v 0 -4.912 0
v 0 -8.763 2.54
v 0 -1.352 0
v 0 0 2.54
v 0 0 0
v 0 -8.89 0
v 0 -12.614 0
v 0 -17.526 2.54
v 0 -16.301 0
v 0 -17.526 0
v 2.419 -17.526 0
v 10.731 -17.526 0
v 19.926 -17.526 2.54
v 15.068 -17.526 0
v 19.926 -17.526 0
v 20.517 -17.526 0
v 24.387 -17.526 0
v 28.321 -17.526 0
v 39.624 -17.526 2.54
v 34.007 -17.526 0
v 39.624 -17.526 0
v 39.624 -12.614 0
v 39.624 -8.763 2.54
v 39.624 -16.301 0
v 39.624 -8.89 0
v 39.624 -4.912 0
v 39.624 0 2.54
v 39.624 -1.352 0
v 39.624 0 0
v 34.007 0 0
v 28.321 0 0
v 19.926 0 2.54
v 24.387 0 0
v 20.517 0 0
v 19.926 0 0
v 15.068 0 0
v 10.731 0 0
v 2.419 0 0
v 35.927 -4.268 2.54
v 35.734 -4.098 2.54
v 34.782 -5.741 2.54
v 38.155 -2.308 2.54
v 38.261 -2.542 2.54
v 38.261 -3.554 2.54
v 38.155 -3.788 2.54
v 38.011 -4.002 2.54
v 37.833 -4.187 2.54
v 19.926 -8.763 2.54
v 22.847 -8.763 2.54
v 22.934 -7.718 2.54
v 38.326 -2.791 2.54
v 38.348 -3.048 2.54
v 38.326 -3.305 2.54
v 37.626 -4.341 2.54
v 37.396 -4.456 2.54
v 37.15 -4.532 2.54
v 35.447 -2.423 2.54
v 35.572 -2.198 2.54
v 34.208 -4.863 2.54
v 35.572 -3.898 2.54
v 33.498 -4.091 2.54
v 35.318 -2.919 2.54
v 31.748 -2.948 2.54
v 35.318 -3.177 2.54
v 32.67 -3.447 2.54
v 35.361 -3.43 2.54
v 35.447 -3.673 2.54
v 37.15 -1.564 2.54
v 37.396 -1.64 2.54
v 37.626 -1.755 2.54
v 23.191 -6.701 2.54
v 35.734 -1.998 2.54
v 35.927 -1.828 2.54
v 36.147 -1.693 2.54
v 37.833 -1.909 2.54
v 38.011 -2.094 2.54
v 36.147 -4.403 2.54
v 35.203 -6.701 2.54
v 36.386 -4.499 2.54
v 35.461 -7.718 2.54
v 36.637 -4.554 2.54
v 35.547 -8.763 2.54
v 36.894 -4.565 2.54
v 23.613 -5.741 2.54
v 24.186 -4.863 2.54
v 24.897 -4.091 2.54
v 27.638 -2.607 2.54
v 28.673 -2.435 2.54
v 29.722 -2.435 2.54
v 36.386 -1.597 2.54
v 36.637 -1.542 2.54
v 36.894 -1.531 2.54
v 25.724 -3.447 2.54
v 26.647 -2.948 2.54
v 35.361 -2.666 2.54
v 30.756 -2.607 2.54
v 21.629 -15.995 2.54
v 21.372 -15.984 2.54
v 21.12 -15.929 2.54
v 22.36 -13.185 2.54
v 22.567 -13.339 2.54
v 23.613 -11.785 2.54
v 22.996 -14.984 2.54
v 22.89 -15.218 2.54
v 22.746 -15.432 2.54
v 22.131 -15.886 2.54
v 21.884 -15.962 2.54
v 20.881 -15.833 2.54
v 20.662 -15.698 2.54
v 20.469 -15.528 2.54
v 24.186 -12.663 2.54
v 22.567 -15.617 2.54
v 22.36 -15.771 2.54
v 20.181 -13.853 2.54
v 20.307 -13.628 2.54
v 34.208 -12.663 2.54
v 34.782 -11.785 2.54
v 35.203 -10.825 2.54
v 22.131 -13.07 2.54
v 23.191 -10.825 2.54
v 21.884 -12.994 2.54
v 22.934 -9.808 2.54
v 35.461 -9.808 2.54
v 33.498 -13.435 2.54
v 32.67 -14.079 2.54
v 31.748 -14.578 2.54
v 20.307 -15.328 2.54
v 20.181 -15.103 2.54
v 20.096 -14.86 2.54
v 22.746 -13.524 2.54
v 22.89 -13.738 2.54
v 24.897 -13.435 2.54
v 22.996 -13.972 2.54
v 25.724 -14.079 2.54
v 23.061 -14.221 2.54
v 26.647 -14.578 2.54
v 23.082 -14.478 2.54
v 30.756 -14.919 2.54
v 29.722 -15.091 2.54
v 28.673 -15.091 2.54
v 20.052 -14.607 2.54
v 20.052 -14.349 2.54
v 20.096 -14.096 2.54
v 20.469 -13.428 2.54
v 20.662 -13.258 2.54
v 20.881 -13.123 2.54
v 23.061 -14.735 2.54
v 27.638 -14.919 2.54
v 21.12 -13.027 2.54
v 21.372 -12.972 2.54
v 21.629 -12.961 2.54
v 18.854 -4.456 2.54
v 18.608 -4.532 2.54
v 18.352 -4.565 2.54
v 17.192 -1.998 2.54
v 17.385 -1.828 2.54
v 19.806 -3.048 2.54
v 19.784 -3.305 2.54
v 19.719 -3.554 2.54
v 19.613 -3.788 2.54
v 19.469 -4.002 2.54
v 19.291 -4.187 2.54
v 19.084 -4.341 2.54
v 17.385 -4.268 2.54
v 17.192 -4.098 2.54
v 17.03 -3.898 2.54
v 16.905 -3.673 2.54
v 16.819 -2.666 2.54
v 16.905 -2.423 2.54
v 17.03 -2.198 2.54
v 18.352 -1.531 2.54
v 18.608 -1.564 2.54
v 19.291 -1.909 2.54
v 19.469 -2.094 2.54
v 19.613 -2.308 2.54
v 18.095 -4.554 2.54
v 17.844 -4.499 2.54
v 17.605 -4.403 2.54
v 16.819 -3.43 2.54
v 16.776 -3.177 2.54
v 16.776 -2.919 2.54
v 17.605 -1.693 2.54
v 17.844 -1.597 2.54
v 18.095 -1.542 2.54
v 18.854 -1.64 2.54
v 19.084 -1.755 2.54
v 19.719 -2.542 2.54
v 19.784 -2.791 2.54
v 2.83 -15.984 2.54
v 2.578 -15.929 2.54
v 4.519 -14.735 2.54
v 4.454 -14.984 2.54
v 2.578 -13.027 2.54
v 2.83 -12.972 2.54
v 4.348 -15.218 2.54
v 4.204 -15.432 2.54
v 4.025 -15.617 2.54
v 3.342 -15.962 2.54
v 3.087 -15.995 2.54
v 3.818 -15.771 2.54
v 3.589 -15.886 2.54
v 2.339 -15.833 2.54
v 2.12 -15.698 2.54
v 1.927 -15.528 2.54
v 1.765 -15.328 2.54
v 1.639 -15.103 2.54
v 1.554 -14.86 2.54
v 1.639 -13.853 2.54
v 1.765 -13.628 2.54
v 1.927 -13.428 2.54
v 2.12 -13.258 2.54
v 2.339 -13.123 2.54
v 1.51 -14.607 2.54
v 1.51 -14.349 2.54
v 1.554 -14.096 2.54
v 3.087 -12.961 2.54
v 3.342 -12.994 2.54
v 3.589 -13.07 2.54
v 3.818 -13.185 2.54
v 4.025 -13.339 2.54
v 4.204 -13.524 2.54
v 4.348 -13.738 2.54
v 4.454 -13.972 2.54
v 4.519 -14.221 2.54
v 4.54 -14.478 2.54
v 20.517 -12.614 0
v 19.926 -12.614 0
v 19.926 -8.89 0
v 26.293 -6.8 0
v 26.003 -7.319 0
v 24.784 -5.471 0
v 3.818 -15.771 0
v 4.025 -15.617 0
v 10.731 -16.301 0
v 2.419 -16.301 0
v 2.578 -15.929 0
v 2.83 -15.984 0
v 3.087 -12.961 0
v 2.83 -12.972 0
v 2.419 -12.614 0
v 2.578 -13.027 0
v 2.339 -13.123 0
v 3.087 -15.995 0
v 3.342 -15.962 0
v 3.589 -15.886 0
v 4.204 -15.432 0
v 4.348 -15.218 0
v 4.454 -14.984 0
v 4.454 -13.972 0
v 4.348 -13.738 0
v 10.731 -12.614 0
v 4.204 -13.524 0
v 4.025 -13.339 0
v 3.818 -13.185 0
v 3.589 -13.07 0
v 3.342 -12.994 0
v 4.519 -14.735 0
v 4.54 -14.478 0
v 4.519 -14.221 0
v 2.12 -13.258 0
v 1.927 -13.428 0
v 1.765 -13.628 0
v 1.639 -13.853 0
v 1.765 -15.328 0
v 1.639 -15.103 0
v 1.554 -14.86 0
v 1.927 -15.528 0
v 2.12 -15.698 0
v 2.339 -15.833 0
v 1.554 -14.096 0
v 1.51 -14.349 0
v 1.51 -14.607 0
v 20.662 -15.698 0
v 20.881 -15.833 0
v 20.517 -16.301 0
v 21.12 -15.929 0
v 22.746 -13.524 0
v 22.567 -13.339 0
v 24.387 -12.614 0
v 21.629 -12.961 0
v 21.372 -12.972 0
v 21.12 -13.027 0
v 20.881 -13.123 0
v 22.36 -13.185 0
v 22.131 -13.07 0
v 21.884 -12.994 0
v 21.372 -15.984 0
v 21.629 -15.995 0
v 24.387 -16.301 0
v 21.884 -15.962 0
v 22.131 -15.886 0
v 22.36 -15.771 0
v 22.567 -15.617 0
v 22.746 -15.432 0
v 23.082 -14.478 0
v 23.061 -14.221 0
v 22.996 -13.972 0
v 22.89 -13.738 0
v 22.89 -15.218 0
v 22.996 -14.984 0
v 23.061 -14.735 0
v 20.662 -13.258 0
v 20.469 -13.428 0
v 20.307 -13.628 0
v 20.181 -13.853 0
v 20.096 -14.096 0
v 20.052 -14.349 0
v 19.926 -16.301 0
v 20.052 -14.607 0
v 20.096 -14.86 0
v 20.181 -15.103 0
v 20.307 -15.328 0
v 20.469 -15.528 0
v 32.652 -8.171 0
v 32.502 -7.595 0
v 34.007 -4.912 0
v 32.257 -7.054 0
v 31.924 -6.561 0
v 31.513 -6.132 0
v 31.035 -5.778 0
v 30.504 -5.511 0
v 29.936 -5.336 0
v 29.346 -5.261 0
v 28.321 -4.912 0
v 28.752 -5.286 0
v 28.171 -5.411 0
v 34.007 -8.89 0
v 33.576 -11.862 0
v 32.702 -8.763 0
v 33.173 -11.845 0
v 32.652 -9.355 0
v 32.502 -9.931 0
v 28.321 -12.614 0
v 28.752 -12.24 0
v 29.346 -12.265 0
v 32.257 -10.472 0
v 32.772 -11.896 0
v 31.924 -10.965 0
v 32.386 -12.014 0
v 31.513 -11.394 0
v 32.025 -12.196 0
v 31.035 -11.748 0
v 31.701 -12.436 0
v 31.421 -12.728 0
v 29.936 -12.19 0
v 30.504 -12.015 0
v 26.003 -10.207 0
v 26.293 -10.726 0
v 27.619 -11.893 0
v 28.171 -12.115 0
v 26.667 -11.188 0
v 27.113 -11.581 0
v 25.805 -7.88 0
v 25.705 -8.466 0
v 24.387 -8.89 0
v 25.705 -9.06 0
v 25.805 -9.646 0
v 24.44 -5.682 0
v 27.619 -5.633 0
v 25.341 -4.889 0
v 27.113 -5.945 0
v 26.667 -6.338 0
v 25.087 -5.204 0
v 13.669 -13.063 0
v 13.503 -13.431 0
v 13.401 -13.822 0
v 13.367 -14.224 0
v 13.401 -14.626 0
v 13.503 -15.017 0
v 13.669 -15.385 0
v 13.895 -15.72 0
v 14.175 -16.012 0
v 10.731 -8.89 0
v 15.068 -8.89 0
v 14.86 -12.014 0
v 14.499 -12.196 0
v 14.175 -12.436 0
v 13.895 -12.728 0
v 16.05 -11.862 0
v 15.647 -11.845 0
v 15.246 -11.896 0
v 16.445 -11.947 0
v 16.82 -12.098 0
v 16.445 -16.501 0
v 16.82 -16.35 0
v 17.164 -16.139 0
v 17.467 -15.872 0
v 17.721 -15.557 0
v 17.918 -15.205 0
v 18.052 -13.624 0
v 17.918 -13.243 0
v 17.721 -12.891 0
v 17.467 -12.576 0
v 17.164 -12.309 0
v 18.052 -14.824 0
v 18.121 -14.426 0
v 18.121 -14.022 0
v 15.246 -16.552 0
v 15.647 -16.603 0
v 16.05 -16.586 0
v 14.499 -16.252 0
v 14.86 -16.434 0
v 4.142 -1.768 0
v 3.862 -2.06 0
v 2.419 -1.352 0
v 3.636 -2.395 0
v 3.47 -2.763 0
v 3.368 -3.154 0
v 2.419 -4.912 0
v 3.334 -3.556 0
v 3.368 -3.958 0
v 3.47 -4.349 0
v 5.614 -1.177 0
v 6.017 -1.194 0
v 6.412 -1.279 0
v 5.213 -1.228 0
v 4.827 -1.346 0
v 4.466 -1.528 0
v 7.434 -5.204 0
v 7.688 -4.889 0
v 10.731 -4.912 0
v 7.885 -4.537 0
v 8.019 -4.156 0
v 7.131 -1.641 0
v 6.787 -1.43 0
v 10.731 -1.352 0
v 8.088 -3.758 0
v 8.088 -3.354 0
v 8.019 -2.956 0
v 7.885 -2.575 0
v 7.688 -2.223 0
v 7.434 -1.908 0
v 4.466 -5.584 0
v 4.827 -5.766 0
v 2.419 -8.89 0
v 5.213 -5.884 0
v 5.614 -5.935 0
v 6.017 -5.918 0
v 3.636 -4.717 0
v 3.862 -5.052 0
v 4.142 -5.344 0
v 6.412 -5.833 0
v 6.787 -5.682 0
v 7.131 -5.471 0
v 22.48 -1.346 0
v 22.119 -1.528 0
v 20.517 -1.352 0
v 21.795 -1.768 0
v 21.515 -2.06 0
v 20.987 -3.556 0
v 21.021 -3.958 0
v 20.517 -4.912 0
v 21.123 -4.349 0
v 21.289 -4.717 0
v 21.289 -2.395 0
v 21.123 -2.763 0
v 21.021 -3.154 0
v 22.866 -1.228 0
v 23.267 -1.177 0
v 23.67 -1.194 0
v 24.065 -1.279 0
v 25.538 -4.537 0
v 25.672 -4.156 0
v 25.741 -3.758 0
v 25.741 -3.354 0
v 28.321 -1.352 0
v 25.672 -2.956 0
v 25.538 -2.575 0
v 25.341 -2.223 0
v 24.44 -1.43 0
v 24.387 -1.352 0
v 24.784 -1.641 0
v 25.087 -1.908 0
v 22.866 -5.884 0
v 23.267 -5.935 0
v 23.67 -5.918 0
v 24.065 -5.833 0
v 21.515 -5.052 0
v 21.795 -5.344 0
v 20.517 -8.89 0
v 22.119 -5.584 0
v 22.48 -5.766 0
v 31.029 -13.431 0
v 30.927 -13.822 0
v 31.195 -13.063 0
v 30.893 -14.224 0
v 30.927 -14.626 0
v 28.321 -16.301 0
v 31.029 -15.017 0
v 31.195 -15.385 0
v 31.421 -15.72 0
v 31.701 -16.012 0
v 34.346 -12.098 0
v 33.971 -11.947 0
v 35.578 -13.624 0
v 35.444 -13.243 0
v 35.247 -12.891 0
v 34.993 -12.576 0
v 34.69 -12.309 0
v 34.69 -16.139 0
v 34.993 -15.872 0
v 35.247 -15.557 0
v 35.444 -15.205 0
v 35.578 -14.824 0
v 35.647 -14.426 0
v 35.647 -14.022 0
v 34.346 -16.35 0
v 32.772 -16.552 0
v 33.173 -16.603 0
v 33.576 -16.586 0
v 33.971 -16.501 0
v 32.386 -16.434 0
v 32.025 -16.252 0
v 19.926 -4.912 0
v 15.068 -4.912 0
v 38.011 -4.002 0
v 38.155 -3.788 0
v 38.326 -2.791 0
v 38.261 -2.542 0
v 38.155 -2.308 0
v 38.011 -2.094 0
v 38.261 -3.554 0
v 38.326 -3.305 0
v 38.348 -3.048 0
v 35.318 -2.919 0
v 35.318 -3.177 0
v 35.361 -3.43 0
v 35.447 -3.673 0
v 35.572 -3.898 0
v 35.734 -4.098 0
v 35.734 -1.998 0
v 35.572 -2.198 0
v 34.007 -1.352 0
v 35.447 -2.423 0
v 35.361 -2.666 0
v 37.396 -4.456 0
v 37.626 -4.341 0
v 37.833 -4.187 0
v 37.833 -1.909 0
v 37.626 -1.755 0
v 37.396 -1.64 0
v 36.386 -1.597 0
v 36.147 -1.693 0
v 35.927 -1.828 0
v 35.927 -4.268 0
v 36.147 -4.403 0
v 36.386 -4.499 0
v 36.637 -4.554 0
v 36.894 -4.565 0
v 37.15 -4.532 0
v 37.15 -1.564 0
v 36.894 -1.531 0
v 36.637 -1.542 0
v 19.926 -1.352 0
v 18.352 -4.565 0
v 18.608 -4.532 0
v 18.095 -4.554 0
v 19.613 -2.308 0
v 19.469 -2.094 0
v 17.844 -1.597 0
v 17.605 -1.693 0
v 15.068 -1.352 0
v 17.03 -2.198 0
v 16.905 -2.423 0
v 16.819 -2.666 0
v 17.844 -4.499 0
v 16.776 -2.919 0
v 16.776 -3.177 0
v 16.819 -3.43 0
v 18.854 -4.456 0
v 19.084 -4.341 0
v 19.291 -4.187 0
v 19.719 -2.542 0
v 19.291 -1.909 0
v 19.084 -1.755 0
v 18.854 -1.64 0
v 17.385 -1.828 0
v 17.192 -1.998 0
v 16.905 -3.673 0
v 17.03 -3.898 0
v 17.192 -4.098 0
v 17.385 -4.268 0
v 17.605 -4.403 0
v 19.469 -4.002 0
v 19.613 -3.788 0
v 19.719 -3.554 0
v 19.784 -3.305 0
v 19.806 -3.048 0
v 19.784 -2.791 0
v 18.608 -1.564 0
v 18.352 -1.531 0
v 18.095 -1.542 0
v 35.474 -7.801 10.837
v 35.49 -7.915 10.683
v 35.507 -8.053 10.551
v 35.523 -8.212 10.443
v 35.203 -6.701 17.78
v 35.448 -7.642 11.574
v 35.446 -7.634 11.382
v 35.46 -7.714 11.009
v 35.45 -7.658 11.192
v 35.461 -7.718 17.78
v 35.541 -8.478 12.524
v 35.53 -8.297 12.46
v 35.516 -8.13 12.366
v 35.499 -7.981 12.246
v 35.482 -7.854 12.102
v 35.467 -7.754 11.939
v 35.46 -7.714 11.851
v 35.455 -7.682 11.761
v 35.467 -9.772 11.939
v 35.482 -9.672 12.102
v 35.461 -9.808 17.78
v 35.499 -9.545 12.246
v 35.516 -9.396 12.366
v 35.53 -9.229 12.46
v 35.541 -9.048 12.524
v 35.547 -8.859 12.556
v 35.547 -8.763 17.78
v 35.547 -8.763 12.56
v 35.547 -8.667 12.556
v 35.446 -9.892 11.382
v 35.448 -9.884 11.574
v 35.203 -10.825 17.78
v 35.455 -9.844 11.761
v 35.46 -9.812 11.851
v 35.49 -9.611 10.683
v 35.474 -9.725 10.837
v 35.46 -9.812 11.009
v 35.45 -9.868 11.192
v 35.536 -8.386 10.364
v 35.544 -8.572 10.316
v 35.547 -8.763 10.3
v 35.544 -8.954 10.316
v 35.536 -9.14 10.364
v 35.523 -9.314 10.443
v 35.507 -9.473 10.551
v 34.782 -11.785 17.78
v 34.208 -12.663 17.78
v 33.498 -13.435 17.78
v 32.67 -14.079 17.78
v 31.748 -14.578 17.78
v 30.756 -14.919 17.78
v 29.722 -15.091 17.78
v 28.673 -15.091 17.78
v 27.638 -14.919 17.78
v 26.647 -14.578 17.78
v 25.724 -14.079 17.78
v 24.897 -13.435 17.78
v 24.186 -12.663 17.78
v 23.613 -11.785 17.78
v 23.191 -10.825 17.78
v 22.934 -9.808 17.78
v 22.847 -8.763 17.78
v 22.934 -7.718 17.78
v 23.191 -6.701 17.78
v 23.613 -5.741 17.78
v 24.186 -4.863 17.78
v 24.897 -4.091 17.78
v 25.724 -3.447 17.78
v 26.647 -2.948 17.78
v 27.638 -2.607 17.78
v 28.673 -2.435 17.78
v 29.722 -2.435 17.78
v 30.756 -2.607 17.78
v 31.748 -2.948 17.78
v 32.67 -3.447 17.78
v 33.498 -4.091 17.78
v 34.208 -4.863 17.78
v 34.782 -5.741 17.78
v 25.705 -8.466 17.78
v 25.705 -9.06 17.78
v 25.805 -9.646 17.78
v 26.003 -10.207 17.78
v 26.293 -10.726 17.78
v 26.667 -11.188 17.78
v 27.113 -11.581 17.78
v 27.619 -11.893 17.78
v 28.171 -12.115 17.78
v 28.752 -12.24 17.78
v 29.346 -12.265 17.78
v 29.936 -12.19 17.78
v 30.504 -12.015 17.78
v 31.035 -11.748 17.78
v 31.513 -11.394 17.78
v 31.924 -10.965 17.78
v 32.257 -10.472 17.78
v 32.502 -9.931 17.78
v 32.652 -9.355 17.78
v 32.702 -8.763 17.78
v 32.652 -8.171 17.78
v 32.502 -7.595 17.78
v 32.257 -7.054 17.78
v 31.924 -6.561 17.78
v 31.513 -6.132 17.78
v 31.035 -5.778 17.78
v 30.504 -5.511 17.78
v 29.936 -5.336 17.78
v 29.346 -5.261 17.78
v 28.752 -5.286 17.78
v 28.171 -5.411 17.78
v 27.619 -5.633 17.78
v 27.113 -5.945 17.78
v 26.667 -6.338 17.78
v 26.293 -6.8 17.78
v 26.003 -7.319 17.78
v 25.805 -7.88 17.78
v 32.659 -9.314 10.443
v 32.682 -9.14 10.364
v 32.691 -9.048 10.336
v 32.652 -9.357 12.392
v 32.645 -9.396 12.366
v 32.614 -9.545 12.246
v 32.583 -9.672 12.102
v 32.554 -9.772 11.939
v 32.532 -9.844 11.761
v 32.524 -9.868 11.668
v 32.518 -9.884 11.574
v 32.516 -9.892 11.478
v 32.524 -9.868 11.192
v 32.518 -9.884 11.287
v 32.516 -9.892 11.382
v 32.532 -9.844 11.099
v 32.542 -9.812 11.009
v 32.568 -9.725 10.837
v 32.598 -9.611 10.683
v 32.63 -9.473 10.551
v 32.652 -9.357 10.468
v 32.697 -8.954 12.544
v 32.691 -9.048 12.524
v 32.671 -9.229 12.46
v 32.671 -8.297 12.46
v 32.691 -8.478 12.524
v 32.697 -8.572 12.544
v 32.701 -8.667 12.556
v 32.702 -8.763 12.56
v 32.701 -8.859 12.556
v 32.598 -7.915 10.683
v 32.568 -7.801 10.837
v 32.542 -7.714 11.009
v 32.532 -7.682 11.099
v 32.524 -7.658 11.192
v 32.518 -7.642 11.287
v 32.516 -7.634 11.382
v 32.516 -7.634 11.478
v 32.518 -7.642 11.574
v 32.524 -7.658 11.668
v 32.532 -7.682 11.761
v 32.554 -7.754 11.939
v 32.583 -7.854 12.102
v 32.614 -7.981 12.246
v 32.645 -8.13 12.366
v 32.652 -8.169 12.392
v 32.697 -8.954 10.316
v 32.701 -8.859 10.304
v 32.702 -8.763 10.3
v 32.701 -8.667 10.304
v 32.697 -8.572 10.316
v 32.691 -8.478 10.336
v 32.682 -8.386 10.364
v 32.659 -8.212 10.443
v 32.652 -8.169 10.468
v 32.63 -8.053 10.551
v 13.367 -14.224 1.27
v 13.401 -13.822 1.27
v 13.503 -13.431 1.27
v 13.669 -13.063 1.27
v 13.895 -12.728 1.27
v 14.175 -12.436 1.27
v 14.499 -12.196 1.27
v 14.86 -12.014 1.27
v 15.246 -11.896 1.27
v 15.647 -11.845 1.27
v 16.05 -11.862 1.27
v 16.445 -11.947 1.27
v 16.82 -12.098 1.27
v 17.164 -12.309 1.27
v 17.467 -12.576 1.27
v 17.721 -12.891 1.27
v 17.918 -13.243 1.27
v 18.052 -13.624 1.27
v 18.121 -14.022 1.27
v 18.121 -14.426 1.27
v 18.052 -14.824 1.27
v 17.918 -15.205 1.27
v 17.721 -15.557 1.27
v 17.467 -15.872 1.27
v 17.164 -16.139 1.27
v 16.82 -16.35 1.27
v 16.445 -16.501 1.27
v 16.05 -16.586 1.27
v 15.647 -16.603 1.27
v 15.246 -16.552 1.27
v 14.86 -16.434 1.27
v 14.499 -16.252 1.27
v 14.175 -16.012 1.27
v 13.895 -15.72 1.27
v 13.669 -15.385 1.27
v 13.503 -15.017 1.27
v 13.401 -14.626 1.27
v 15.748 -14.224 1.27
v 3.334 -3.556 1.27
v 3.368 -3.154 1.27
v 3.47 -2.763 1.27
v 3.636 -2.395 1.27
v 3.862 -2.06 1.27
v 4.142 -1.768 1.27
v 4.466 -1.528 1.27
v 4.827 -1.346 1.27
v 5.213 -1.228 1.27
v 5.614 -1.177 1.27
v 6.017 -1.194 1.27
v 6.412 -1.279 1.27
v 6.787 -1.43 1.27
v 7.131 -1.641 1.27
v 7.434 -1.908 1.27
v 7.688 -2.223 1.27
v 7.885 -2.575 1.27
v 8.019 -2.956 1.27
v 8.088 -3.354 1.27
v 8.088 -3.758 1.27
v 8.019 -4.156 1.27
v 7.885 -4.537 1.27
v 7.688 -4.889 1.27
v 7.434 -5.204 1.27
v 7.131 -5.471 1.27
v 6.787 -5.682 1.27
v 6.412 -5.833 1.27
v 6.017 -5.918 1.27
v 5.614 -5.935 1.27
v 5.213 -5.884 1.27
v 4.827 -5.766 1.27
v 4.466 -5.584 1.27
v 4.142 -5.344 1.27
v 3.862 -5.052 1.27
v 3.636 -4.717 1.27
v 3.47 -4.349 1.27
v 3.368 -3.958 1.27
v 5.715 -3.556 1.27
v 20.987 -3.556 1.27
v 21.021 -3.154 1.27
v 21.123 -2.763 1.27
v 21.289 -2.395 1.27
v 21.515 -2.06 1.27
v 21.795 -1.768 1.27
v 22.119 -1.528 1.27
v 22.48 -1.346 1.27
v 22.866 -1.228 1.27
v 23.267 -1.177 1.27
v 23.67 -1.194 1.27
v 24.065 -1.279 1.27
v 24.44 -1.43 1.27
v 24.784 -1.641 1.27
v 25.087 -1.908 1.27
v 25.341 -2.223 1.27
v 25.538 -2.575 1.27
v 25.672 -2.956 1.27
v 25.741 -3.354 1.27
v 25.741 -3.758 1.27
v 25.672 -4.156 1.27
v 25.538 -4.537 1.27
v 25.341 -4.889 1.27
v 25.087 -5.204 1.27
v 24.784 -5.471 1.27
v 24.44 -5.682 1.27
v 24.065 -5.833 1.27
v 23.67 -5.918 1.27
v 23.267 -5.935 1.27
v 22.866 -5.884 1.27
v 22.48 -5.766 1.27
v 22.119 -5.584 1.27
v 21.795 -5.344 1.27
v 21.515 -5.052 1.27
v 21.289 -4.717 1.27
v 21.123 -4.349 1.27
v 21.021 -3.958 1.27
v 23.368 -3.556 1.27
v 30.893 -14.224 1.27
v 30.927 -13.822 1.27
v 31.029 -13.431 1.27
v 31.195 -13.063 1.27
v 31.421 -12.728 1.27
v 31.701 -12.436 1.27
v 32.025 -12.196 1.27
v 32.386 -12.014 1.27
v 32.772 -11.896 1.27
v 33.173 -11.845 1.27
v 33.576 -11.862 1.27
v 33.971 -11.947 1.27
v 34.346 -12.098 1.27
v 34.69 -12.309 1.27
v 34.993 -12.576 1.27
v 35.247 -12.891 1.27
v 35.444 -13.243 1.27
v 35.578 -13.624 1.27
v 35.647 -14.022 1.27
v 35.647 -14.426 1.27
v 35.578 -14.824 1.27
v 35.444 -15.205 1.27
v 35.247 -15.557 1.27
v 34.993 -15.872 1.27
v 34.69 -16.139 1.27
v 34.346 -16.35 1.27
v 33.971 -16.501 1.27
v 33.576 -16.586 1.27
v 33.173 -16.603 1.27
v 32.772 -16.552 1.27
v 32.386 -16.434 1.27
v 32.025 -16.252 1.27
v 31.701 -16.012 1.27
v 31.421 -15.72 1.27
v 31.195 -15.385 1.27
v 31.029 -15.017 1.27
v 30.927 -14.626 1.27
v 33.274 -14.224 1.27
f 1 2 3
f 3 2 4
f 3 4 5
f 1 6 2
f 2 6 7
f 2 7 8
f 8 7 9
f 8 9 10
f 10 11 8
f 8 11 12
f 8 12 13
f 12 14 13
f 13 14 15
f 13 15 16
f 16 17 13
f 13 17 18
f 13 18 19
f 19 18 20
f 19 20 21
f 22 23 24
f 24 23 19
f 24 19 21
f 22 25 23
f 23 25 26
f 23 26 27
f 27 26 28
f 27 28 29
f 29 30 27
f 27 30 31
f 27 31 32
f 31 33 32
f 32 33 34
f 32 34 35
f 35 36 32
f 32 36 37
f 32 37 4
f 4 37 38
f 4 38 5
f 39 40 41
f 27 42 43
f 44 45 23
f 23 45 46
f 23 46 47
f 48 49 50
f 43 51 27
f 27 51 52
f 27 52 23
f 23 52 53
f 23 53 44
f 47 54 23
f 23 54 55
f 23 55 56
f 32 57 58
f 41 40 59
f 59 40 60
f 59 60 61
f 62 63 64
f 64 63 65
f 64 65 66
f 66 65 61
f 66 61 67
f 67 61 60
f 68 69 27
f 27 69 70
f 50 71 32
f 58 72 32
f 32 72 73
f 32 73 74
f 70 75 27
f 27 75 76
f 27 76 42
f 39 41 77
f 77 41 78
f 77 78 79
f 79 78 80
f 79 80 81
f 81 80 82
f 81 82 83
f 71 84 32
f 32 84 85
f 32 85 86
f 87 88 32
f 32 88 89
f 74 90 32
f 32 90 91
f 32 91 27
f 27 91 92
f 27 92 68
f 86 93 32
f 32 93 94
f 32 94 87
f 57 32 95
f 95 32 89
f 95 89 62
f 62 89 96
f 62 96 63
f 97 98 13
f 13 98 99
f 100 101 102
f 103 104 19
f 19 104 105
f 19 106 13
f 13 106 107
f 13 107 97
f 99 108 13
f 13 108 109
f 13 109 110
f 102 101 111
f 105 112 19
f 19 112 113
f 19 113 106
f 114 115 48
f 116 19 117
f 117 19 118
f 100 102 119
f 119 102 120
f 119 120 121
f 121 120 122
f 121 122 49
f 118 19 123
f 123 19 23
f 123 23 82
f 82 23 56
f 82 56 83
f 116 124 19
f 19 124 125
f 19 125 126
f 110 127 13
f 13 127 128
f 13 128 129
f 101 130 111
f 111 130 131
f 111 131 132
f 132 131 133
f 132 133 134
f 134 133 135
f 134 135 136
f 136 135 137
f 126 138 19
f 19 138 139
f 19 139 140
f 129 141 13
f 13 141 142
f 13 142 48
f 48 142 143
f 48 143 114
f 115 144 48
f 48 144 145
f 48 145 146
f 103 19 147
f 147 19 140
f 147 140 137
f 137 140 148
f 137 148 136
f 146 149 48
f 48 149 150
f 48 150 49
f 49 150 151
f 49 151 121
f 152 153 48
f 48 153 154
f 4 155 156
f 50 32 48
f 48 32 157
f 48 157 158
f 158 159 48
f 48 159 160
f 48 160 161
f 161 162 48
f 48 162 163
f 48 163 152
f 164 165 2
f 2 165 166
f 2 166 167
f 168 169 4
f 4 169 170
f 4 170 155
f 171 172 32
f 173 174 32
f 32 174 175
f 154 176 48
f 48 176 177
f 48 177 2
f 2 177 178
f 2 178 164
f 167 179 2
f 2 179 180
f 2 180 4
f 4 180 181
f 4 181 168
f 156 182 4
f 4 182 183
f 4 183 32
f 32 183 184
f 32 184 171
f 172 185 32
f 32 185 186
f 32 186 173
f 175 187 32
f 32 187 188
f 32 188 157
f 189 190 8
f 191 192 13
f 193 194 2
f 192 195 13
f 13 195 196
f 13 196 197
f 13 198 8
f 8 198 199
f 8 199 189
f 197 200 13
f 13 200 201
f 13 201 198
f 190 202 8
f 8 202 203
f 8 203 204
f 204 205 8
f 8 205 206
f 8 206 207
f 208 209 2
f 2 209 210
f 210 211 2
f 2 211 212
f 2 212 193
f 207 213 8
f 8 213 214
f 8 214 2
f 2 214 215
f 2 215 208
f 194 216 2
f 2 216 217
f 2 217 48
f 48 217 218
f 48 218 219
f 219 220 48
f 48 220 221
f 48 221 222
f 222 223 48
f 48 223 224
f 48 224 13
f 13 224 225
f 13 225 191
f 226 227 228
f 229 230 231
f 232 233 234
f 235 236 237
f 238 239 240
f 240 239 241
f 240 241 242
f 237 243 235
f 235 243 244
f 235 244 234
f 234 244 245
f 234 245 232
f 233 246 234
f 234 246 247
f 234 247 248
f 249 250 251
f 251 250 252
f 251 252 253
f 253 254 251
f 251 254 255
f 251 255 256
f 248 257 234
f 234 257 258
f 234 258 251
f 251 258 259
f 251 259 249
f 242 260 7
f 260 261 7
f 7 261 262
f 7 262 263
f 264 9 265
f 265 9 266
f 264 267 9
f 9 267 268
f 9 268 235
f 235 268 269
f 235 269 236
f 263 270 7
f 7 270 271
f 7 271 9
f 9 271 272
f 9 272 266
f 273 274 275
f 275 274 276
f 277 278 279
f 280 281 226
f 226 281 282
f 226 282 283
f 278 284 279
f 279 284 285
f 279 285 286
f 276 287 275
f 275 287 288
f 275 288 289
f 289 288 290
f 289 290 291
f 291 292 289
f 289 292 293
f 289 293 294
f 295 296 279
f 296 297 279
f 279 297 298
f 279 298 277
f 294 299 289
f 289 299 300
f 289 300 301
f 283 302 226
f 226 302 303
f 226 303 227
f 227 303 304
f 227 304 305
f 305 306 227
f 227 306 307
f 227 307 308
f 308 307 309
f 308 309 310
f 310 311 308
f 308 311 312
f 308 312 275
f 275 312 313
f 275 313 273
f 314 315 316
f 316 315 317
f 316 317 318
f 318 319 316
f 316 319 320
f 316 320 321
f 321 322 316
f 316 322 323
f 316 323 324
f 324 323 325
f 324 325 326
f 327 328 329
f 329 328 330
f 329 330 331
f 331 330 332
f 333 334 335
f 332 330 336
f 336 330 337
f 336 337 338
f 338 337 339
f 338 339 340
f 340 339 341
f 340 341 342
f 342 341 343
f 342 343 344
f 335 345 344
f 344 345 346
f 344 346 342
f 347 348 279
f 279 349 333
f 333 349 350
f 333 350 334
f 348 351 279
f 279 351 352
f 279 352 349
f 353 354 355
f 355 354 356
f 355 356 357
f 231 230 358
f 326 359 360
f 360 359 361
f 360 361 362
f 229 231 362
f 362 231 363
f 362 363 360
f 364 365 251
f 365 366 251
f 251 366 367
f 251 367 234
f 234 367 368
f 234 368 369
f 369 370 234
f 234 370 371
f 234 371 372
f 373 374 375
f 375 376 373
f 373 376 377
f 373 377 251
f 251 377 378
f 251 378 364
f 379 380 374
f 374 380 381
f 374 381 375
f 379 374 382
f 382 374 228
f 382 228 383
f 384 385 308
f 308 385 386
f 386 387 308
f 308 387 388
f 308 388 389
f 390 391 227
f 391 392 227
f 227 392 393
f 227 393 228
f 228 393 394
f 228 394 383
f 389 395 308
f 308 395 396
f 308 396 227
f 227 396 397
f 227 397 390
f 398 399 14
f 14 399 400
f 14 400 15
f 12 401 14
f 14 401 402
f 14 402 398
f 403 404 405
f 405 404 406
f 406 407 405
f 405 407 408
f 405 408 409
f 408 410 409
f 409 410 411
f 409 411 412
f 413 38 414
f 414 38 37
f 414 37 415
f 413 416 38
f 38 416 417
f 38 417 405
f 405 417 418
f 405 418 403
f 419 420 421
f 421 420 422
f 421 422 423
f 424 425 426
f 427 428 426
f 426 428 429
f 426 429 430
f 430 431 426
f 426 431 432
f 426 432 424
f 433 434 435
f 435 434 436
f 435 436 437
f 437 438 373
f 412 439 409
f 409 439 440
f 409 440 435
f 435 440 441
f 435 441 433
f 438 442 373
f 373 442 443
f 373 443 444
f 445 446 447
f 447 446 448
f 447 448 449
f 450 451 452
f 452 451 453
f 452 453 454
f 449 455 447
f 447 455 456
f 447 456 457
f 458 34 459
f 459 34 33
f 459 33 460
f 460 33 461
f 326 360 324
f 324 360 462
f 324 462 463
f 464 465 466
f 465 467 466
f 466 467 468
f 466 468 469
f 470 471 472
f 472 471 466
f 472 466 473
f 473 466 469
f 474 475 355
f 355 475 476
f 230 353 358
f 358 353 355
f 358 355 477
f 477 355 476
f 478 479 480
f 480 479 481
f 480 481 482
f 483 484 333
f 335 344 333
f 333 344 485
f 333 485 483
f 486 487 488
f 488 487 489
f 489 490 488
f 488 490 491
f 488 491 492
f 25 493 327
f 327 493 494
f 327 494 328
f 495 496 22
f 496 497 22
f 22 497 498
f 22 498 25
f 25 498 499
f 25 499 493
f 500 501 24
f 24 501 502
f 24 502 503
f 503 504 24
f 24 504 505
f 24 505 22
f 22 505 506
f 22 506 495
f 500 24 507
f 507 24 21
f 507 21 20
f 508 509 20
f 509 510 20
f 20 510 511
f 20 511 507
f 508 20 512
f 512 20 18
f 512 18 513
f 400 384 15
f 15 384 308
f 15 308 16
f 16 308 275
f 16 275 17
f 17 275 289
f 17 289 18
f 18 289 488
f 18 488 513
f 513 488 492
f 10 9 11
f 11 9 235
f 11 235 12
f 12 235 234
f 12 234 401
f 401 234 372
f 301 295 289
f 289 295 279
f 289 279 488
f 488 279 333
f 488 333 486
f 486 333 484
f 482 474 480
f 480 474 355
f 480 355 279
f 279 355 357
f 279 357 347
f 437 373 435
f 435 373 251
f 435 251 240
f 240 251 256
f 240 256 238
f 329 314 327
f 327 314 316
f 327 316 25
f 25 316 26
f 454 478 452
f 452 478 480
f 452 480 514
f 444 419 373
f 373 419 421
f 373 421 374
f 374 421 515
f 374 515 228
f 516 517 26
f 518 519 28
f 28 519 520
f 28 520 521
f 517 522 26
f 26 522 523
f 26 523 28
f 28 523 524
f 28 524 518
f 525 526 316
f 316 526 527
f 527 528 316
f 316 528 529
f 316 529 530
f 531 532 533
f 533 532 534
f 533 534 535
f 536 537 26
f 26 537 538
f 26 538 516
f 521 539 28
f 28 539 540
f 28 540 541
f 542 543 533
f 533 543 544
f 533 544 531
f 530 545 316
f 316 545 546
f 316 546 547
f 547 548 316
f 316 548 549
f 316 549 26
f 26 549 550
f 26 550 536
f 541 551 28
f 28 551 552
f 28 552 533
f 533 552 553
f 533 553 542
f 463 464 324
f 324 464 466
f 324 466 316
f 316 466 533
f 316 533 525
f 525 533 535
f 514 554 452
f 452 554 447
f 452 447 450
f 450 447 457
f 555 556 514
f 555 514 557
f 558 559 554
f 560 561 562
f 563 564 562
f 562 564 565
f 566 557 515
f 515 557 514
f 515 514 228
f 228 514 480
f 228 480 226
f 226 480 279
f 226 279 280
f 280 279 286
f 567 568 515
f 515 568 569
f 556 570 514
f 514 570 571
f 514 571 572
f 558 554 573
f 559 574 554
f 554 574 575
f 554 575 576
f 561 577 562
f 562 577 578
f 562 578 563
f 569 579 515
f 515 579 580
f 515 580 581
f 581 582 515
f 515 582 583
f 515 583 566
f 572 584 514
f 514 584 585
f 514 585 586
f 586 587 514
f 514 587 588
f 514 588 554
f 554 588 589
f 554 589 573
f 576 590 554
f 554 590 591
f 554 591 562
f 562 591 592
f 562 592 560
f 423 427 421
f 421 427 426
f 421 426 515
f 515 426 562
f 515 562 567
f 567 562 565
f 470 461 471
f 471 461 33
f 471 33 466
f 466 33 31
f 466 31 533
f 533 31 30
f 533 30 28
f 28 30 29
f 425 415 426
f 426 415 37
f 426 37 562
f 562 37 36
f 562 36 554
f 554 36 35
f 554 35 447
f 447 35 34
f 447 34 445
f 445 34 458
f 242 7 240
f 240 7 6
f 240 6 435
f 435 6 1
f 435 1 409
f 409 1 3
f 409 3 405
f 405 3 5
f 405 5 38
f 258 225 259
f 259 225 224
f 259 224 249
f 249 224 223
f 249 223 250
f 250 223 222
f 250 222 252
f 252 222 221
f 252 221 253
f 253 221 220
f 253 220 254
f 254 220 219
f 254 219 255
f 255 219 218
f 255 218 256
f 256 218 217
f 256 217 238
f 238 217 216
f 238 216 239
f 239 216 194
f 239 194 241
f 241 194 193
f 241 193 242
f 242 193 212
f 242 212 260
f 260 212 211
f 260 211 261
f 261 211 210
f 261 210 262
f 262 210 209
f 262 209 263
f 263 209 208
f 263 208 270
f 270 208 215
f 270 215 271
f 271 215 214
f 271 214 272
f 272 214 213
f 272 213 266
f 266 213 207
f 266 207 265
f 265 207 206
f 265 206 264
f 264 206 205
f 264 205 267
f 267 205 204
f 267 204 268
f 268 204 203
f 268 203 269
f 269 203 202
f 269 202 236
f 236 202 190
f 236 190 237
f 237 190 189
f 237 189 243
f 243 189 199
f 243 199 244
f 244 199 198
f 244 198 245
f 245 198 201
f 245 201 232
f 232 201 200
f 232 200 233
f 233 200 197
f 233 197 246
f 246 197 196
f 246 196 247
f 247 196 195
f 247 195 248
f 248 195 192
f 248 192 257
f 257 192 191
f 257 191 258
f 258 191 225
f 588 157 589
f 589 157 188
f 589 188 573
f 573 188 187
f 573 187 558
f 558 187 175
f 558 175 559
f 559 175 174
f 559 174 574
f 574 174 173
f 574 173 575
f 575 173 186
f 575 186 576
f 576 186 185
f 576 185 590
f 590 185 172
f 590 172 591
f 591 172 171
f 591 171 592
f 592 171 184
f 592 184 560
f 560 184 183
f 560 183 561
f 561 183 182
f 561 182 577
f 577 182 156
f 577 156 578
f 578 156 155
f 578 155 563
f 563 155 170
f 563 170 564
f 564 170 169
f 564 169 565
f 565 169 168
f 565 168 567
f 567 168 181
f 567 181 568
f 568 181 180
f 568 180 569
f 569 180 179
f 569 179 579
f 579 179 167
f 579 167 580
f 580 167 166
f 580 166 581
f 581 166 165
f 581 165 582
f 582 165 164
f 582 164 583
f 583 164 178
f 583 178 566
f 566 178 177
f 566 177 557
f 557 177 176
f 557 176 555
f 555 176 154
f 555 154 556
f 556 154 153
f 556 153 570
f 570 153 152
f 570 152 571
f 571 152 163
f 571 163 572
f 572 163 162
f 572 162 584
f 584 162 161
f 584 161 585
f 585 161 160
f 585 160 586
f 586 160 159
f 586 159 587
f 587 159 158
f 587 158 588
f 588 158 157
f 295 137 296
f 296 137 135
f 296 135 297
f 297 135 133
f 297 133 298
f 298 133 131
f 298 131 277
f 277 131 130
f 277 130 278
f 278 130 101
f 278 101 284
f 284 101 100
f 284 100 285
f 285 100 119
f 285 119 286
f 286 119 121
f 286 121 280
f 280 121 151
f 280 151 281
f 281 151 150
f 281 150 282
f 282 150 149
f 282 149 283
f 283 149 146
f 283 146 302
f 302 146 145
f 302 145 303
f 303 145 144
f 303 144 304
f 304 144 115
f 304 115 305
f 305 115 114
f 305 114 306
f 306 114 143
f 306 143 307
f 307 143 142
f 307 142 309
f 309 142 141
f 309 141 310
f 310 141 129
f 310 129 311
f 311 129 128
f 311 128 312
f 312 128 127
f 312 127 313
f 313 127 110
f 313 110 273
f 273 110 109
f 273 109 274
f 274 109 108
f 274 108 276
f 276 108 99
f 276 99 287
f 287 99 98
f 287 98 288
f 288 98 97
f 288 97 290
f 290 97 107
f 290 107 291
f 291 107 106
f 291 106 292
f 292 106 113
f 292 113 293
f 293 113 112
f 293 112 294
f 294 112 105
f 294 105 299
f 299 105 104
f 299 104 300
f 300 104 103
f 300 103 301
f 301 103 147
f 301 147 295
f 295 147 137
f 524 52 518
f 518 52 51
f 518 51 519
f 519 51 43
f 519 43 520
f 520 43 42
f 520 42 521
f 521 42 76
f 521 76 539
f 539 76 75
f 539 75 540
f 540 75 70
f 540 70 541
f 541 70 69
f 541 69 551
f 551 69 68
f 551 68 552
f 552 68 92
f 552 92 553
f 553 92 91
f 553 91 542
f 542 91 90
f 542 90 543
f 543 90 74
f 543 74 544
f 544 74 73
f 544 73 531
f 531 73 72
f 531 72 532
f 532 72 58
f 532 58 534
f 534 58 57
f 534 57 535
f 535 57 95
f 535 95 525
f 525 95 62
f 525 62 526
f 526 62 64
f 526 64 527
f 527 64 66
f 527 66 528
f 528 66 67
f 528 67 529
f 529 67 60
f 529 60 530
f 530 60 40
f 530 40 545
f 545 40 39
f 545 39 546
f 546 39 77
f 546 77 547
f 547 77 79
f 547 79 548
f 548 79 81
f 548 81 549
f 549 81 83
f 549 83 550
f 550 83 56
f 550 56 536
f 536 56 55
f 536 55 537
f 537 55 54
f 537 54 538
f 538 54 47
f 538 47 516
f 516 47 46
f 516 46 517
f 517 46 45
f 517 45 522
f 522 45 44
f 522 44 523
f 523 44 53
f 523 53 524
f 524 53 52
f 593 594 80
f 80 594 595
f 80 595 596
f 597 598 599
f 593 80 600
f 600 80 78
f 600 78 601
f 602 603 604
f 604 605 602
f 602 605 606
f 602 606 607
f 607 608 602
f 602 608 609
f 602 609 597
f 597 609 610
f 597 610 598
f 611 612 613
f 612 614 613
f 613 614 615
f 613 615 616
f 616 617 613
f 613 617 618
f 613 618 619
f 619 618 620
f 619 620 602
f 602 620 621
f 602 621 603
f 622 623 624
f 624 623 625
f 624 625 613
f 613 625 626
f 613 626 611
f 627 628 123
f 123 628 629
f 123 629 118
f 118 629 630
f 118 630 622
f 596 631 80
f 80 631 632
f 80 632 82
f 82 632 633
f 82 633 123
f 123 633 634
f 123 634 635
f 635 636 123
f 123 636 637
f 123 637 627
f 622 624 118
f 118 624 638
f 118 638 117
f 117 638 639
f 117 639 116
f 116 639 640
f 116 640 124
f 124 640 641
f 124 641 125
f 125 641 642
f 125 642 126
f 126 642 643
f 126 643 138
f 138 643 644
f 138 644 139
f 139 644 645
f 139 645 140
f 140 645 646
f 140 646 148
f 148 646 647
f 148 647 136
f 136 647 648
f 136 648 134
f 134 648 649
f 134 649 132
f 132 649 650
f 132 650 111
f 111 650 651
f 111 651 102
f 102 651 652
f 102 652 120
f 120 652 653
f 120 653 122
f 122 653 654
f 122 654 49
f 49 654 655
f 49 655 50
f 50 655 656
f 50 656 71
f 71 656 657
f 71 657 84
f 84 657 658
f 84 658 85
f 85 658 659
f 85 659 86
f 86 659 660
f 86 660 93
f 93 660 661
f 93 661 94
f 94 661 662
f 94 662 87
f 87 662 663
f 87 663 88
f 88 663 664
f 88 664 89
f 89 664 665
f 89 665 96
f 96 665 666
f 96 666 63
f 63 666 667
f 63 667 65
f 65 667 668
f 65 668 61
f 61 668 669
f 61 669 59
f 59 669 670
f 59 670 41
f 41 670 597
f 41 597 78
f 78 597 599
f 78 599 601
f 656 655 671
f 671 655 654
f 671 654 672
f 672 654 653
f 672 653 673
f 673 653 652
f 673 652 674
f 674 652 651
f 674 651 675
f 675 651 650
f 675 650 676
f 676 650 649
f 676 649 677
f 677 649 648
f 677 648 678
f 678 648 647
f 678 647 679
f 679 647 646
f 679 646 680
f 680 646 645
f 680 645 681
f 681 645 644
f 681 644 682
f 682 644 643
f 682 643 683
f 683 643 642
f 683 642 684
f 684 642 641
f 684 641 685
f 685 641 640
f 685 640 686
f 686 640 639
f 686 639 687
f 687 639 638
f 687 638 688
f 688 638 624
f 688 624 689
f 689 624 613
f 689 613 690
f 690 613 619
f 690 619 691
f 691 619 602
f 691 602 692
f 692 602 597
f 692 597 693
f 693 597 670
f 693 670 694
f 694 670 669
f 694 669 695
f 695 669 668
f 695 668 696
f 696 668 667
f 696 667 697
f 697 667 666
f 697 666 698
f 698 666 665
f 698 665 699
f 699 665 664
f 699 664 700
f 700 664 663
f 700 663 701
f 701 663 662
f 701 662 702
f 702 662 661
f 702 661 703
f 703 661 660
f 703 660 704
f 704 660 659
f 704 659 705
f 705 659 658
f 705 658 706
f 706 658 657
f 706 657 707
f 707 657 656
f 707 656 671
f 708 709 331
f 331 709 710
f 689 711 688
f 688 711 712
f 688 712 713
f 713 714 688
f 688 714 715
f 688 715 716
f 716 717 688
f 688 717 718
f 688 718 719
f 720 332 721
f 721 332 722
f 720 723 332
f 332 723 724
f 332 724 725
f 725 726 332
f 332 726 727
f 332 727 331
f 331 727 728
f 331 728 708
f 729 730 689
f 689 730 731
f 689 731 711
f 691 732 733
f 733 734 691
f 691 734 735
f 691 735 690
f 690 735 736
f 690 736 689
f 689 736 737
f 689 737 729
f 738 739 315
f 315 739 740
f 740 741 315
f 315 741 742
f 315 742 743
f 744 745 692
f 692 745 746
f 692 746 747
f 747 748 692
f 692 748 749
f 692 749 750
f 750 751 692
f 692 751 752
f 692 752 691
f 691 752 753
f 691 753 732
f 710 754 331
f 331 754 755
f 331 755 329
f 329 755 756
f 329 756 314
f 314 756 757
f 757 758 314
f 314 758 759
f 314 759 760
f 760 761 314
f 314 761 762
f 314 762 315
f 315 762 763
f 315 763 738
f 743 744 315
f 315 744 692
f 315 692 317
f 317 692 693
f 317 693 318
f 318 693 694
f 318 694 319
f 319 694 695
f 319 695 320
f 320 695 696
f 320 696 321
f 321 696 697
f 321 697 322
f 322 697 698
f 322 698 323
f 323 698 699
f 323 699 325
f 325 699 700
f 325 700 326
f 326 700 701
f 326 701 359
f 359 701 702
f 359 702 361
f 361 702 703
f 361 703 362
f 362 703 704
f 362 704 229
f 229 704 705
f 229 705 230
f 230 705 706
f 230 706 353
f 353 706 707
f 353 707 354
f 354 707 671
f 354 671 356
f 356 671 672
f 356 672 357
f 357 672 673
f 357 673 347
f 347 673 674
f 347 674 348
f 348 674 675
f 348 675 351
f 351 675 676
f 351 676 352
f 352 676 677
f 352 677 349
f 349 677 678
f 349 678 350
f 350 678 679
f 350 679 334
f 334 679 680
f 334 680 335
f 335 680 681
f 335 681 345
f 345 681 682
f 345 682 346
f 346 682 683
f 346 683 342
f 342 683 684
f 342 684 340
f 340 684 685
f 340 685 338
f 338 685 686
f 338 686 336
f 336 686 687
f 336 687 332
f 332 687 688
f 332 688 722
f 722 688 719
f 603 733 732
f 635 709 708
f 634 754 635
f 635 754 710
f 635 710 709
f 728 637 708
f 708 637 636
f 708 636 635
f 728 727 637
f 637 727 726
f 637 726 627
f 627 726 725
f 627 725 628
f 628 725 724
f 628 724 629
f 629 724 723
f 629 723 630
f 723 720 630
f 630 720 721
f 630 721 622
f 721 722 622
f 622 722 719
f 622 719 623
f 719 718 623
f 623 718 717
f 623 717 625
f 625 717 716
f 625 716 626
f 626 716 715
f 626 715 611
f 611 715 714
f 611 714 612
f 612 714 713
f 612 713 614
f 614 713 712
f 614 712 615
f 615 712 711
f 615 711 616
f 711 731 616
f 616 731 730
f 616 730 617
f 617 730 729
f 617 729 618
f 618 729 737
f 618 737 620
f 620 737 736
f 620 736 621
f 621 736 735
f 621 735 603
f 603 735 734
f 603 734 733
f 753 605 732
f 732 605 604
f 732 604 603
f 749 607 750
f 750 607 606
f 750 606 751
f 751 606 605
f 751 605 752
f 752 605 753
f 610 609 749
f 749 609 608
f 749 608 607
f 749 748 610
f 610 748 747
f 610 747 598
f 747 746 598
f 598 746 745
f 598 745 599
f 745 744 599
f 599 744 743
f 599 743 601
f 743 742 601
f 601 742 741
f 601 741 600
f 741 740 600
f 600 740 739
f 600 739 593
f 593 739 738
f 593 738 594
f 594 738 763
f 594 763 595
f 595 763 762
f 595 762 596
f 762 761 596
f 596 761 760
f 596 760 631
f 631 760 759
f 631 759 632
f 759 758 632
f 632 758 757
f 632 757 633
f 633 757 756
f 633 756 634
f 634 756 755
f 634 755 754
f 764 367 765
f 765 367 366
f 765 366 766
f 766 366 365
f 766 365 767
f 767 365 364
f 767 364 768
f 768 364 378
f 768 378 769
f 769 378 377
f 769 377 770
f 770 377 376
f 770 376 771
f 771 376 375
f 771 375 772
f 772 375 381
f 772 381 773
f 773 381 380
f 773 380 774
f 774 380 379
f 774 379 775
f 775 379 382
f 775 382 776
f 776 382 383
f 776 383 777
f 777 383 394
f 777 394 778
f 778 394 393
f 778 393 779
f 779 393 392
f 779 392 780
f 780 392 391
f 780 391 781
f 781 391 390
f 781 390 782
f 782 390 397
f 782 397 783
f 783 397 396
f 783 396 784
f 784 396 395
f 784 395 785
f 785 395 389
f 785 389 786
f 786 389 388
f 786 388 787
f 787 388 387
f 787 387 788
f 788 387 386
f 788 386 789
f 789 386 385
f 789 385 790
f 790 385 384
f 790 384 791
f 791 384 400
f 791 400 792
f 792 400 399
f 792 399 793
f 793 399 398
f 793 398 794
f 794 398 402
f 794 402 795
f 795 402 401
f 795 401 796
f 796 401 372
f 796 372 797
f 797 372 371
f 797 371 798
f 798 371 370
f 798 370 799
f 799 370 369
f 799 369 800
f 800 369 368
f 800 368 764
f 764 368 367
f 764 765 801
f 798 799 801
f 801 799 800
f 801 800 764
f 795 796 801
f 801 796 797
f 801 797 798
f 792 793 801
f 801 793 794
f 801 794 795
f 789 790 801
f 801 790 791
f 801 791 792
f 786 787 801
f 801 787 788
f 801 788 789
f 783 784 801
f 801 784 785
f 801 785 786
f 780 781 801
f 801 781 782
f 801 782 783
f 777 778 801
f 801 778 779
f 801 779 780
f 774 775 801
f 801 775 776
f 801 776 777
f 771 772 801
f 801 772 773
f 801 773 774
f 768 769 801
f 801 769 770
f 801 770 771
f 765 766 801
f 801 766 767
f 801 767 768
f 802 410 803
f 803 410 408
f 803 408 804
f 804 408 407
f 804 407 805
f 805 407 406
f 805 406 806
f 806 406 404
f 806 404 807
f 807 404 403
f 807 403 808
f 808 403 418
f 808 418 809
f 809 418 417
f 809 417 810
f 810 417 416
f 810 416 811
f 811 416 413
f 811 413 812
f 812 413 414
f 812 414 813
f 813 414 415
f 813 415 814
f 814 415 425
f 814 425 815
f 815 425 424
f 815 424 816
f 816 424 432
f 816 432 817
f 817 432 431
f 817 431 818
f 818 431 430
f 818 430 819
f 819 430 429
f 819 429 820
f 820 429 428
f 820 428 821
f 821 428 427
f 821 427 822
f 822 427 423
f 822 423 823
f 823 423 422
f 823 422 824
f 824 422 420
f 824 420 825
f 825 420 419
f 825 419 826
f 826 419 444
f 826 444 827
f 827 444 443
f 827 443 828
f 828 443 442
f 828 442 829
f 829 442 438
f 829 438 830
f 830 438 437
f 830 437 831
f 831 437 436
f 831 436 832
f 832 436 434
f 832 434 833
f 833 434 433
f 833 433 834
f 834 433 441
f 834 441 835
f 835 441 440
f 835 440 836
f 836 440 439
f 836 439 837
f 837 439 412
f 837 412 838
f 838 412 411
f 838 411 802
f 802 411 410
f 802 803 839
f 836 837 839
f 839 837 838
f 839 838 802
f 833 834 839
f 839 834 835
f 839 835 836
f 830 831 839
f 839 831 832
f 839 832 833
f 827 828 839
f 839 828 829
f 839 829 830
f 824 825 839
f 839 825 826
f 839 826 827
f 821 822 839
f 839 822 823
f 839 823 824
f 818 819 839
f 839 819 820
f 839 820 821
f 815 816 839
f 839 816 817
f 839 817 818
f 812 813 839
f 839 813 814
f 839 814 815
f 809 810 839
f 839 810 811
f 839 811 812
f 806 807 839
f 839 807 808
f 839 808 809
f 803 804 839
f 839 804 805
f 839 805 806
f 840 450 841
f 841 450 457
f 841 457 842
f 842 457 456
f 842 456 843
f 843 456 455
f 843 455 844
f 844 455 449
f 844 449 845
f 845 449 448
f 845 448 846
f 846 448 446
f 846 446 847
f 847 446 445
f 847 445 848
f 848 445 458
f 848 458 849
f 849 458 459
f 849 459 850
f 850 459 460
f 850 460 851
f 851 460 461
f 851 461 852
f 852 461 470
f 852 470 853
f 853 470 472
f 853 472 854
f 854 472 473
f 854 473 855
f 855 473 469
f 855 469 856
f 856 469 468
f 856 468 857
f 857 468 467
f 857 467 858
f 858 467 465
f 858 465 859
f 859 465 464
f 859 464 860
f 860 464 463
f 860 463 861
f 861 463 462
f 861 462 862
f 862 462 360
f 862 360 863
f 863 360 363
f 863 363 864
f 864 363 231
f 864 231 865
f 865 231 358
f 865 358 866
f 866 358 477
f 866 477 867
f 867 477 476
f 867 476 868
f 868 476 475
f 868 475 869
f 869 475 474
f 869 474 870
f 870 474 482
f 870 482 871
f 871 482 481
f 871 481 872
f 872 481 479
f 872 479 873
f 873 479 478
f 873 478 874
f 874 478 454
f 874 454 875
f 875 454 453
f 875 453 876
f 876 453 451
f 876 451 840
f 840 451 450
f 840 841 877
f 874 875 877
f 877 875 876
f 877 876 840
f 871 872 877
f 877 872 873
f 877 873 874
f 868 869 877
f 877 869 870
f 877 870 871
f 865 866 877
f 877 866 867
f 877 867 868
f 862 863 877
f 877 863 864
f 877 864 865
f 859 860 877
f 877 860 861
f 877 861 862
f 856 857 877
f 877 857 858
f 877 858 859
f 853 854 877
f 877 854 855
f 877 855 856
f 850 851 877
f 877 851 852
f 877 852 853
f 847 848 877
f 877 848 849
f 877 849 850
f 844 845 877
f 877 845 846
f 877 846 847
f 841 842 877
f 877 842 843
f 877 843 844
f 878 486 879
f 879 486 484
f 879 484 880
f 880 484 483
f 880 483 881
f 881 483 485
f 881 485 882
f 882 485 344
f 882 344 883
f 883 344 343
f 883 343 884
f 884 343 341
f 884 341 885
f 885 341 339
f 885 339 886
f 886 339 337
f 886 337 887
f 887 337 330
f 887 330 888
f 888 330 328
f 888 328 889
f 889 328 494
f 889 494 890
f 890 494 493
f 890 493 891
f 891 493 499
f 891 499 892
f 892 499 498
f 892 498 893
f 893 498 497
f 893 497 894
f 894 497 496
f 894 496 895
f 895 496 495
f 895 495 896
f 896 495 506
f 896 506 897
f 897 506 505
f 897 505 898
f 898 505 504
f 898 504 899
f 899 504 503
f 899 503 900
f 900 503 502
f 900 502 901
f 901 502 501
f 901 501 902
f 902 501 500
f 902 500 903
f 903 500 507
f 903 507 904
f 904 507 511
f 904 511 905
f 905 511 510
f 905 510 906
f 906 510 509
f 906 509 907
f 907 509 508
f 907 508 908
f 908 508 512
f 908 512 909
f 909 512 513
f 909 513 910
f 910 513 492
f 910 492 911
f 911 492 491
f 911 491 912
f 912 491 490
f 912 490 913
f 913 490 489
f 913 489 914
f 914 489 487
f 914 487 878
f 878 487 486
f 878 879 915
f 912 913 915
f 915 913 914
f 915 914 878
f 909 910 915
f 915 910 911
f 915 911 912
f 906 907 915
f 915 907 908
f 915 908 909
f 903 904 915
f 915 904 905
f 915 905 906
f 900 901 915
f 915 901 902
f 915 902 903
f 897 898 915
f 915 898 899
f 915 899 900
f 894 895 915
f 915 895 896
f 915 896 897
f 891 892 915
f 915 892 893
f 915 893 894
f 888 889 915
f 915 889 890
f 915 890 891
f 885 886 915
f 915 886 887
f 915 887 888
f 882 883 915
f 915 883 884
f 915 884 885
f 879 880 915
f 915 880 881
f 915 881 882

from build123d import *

# Parameters (mm, degrees)
SKETCH1_W               = 39.624
SKETCH1_H               = 17.526
BOSS_EXTRUDE1_DEPTH     = 2.54
SKETCH2_R               = 1.517897845
CUT_EXTRUDE1_DEPTH      = 44.401309335
SKETCH3_R               = 6.35
BOSS_EXTRUDE2_DEPTH     = 15.24
SKETCH5_R               = 3.5052
CUT_EXTRUDE2_DEPTH      = 47.833219535
CUT_EXTRUDE3_REACH      = 45.438
CUT_EXTRUDE3_END_RADIUS = 3.5052
SKETCH6_R               = 1.1303
SKETCH7_R               = 2.38125
CUT_EXTRUDE4_DEPTH      = 1.27


with BuildPart() as part:
    # Sketch1 → Boss-Extrude1 (new body)
    with BuildSketch(Plane.XY):
        with Locations((19.812, -8.763)):
            Rectangle(SKETCH1_W, SKETCH1_H)
    extrude(amount=BOSS_EXTRUDE1_DEPTH)

    # Sketch2 → Cut-Extrude1 (cut, through all)
    with BuildSketch(Plane.XY.offset(2.54)):
        with Locations((36.83, -3.048)):
            Circle(SKETCH2_R)
        with Locations((21.5646, -14.478)):
            Circle(SKETCH2_R)
        with Locations((18.288, -3.048)):
            Circle(SKETCH2_R)
        with Locations((3.0226, -14.478)):
            Circle(SKETCH2_R)
    extrude(amount=-CUT_EXTRUDE1_DEPTH, mode=Mode.SUBTRACT)

    # Sketch3 → Boss-Extrude2 (add)
    with BuildSketch(Plane.XY.offset(2.54)):
        with Locations(Location((29.1973, -8.763, 0), (0, 0, 180))):
            Circle(SKETCH3_R)
    extrude(amount=BOSS_EXTRUDE2_DEPTH)

    # Sketch5 → Cut-Extrude2 (cut, through all)
    with BuildSketch(Plane.XY.offset(17.78)):
        with Locations((29.1973, -8.763)):
            Circle(SKETCH5_R)
    extrude(amount=-CUT_EXTRUDE2_DEPTH, mode=Mode.SUBTRACT)

    # Cut-Extrude3: up to this cylinder (the profile starts outside it)
    cut_extrude3_end = Plane(origin=(29.1973, -8.763, 11.43), z_dir=(0, 0, 1)) * Cylinder(CUT_EXTRUDE3_END_RADIUS, 98.8864, mode=Mode.PRIVATE)
    # Sketch6 → Cut-Extrude3 (cut, up to the surface)
    with BuildSketch(Plane(origin=(35.5473, 0, 0), x_dir=(0, 0, -1), z_dir=(1, 0, 0)), mode=Mode.PRIVATE) as cut_extrude3_sk1:
        with Locations((-11.43, -8.763)):
            Circle(SKETCH6_R)
    cut_extrude3_tool1 = extrude(cut_extrude3_sk1.sketch, amount=-CUT_EXTRUDE3_REACH, mode=Mode.PRIVATE) - cut_extrude3_end
    add(cut_extrude3_tool1.solids().sort_by_distance((35.5473, -8.763, 11.43))[0], mode=Mode.SUBTRACT)

    # Sketch7 → Cut-Extrude4 (cut)
    with BuildSketch(Plane(origin=(0, 0, 0), x_dir=(-1, 0, 0), z_dir=(0, 0, -1))):
        with Locations((-15.748, -14.224)):
            Circle(SKETCH7_R)
        with Locations((-5.715, -3.556)):
            Circle(SKETCH7_R)
        with Locations((-23.368, -3.556)):
            Circle(SKETCH7_R)
        with Locations((-33.274, -14.224)):
            Circle(SKETCH7_R)
    extrude(amount=-CUT_EXTRUDE4_DEPTH, mode=Mode.SUBTRACT)


solid = part.part
